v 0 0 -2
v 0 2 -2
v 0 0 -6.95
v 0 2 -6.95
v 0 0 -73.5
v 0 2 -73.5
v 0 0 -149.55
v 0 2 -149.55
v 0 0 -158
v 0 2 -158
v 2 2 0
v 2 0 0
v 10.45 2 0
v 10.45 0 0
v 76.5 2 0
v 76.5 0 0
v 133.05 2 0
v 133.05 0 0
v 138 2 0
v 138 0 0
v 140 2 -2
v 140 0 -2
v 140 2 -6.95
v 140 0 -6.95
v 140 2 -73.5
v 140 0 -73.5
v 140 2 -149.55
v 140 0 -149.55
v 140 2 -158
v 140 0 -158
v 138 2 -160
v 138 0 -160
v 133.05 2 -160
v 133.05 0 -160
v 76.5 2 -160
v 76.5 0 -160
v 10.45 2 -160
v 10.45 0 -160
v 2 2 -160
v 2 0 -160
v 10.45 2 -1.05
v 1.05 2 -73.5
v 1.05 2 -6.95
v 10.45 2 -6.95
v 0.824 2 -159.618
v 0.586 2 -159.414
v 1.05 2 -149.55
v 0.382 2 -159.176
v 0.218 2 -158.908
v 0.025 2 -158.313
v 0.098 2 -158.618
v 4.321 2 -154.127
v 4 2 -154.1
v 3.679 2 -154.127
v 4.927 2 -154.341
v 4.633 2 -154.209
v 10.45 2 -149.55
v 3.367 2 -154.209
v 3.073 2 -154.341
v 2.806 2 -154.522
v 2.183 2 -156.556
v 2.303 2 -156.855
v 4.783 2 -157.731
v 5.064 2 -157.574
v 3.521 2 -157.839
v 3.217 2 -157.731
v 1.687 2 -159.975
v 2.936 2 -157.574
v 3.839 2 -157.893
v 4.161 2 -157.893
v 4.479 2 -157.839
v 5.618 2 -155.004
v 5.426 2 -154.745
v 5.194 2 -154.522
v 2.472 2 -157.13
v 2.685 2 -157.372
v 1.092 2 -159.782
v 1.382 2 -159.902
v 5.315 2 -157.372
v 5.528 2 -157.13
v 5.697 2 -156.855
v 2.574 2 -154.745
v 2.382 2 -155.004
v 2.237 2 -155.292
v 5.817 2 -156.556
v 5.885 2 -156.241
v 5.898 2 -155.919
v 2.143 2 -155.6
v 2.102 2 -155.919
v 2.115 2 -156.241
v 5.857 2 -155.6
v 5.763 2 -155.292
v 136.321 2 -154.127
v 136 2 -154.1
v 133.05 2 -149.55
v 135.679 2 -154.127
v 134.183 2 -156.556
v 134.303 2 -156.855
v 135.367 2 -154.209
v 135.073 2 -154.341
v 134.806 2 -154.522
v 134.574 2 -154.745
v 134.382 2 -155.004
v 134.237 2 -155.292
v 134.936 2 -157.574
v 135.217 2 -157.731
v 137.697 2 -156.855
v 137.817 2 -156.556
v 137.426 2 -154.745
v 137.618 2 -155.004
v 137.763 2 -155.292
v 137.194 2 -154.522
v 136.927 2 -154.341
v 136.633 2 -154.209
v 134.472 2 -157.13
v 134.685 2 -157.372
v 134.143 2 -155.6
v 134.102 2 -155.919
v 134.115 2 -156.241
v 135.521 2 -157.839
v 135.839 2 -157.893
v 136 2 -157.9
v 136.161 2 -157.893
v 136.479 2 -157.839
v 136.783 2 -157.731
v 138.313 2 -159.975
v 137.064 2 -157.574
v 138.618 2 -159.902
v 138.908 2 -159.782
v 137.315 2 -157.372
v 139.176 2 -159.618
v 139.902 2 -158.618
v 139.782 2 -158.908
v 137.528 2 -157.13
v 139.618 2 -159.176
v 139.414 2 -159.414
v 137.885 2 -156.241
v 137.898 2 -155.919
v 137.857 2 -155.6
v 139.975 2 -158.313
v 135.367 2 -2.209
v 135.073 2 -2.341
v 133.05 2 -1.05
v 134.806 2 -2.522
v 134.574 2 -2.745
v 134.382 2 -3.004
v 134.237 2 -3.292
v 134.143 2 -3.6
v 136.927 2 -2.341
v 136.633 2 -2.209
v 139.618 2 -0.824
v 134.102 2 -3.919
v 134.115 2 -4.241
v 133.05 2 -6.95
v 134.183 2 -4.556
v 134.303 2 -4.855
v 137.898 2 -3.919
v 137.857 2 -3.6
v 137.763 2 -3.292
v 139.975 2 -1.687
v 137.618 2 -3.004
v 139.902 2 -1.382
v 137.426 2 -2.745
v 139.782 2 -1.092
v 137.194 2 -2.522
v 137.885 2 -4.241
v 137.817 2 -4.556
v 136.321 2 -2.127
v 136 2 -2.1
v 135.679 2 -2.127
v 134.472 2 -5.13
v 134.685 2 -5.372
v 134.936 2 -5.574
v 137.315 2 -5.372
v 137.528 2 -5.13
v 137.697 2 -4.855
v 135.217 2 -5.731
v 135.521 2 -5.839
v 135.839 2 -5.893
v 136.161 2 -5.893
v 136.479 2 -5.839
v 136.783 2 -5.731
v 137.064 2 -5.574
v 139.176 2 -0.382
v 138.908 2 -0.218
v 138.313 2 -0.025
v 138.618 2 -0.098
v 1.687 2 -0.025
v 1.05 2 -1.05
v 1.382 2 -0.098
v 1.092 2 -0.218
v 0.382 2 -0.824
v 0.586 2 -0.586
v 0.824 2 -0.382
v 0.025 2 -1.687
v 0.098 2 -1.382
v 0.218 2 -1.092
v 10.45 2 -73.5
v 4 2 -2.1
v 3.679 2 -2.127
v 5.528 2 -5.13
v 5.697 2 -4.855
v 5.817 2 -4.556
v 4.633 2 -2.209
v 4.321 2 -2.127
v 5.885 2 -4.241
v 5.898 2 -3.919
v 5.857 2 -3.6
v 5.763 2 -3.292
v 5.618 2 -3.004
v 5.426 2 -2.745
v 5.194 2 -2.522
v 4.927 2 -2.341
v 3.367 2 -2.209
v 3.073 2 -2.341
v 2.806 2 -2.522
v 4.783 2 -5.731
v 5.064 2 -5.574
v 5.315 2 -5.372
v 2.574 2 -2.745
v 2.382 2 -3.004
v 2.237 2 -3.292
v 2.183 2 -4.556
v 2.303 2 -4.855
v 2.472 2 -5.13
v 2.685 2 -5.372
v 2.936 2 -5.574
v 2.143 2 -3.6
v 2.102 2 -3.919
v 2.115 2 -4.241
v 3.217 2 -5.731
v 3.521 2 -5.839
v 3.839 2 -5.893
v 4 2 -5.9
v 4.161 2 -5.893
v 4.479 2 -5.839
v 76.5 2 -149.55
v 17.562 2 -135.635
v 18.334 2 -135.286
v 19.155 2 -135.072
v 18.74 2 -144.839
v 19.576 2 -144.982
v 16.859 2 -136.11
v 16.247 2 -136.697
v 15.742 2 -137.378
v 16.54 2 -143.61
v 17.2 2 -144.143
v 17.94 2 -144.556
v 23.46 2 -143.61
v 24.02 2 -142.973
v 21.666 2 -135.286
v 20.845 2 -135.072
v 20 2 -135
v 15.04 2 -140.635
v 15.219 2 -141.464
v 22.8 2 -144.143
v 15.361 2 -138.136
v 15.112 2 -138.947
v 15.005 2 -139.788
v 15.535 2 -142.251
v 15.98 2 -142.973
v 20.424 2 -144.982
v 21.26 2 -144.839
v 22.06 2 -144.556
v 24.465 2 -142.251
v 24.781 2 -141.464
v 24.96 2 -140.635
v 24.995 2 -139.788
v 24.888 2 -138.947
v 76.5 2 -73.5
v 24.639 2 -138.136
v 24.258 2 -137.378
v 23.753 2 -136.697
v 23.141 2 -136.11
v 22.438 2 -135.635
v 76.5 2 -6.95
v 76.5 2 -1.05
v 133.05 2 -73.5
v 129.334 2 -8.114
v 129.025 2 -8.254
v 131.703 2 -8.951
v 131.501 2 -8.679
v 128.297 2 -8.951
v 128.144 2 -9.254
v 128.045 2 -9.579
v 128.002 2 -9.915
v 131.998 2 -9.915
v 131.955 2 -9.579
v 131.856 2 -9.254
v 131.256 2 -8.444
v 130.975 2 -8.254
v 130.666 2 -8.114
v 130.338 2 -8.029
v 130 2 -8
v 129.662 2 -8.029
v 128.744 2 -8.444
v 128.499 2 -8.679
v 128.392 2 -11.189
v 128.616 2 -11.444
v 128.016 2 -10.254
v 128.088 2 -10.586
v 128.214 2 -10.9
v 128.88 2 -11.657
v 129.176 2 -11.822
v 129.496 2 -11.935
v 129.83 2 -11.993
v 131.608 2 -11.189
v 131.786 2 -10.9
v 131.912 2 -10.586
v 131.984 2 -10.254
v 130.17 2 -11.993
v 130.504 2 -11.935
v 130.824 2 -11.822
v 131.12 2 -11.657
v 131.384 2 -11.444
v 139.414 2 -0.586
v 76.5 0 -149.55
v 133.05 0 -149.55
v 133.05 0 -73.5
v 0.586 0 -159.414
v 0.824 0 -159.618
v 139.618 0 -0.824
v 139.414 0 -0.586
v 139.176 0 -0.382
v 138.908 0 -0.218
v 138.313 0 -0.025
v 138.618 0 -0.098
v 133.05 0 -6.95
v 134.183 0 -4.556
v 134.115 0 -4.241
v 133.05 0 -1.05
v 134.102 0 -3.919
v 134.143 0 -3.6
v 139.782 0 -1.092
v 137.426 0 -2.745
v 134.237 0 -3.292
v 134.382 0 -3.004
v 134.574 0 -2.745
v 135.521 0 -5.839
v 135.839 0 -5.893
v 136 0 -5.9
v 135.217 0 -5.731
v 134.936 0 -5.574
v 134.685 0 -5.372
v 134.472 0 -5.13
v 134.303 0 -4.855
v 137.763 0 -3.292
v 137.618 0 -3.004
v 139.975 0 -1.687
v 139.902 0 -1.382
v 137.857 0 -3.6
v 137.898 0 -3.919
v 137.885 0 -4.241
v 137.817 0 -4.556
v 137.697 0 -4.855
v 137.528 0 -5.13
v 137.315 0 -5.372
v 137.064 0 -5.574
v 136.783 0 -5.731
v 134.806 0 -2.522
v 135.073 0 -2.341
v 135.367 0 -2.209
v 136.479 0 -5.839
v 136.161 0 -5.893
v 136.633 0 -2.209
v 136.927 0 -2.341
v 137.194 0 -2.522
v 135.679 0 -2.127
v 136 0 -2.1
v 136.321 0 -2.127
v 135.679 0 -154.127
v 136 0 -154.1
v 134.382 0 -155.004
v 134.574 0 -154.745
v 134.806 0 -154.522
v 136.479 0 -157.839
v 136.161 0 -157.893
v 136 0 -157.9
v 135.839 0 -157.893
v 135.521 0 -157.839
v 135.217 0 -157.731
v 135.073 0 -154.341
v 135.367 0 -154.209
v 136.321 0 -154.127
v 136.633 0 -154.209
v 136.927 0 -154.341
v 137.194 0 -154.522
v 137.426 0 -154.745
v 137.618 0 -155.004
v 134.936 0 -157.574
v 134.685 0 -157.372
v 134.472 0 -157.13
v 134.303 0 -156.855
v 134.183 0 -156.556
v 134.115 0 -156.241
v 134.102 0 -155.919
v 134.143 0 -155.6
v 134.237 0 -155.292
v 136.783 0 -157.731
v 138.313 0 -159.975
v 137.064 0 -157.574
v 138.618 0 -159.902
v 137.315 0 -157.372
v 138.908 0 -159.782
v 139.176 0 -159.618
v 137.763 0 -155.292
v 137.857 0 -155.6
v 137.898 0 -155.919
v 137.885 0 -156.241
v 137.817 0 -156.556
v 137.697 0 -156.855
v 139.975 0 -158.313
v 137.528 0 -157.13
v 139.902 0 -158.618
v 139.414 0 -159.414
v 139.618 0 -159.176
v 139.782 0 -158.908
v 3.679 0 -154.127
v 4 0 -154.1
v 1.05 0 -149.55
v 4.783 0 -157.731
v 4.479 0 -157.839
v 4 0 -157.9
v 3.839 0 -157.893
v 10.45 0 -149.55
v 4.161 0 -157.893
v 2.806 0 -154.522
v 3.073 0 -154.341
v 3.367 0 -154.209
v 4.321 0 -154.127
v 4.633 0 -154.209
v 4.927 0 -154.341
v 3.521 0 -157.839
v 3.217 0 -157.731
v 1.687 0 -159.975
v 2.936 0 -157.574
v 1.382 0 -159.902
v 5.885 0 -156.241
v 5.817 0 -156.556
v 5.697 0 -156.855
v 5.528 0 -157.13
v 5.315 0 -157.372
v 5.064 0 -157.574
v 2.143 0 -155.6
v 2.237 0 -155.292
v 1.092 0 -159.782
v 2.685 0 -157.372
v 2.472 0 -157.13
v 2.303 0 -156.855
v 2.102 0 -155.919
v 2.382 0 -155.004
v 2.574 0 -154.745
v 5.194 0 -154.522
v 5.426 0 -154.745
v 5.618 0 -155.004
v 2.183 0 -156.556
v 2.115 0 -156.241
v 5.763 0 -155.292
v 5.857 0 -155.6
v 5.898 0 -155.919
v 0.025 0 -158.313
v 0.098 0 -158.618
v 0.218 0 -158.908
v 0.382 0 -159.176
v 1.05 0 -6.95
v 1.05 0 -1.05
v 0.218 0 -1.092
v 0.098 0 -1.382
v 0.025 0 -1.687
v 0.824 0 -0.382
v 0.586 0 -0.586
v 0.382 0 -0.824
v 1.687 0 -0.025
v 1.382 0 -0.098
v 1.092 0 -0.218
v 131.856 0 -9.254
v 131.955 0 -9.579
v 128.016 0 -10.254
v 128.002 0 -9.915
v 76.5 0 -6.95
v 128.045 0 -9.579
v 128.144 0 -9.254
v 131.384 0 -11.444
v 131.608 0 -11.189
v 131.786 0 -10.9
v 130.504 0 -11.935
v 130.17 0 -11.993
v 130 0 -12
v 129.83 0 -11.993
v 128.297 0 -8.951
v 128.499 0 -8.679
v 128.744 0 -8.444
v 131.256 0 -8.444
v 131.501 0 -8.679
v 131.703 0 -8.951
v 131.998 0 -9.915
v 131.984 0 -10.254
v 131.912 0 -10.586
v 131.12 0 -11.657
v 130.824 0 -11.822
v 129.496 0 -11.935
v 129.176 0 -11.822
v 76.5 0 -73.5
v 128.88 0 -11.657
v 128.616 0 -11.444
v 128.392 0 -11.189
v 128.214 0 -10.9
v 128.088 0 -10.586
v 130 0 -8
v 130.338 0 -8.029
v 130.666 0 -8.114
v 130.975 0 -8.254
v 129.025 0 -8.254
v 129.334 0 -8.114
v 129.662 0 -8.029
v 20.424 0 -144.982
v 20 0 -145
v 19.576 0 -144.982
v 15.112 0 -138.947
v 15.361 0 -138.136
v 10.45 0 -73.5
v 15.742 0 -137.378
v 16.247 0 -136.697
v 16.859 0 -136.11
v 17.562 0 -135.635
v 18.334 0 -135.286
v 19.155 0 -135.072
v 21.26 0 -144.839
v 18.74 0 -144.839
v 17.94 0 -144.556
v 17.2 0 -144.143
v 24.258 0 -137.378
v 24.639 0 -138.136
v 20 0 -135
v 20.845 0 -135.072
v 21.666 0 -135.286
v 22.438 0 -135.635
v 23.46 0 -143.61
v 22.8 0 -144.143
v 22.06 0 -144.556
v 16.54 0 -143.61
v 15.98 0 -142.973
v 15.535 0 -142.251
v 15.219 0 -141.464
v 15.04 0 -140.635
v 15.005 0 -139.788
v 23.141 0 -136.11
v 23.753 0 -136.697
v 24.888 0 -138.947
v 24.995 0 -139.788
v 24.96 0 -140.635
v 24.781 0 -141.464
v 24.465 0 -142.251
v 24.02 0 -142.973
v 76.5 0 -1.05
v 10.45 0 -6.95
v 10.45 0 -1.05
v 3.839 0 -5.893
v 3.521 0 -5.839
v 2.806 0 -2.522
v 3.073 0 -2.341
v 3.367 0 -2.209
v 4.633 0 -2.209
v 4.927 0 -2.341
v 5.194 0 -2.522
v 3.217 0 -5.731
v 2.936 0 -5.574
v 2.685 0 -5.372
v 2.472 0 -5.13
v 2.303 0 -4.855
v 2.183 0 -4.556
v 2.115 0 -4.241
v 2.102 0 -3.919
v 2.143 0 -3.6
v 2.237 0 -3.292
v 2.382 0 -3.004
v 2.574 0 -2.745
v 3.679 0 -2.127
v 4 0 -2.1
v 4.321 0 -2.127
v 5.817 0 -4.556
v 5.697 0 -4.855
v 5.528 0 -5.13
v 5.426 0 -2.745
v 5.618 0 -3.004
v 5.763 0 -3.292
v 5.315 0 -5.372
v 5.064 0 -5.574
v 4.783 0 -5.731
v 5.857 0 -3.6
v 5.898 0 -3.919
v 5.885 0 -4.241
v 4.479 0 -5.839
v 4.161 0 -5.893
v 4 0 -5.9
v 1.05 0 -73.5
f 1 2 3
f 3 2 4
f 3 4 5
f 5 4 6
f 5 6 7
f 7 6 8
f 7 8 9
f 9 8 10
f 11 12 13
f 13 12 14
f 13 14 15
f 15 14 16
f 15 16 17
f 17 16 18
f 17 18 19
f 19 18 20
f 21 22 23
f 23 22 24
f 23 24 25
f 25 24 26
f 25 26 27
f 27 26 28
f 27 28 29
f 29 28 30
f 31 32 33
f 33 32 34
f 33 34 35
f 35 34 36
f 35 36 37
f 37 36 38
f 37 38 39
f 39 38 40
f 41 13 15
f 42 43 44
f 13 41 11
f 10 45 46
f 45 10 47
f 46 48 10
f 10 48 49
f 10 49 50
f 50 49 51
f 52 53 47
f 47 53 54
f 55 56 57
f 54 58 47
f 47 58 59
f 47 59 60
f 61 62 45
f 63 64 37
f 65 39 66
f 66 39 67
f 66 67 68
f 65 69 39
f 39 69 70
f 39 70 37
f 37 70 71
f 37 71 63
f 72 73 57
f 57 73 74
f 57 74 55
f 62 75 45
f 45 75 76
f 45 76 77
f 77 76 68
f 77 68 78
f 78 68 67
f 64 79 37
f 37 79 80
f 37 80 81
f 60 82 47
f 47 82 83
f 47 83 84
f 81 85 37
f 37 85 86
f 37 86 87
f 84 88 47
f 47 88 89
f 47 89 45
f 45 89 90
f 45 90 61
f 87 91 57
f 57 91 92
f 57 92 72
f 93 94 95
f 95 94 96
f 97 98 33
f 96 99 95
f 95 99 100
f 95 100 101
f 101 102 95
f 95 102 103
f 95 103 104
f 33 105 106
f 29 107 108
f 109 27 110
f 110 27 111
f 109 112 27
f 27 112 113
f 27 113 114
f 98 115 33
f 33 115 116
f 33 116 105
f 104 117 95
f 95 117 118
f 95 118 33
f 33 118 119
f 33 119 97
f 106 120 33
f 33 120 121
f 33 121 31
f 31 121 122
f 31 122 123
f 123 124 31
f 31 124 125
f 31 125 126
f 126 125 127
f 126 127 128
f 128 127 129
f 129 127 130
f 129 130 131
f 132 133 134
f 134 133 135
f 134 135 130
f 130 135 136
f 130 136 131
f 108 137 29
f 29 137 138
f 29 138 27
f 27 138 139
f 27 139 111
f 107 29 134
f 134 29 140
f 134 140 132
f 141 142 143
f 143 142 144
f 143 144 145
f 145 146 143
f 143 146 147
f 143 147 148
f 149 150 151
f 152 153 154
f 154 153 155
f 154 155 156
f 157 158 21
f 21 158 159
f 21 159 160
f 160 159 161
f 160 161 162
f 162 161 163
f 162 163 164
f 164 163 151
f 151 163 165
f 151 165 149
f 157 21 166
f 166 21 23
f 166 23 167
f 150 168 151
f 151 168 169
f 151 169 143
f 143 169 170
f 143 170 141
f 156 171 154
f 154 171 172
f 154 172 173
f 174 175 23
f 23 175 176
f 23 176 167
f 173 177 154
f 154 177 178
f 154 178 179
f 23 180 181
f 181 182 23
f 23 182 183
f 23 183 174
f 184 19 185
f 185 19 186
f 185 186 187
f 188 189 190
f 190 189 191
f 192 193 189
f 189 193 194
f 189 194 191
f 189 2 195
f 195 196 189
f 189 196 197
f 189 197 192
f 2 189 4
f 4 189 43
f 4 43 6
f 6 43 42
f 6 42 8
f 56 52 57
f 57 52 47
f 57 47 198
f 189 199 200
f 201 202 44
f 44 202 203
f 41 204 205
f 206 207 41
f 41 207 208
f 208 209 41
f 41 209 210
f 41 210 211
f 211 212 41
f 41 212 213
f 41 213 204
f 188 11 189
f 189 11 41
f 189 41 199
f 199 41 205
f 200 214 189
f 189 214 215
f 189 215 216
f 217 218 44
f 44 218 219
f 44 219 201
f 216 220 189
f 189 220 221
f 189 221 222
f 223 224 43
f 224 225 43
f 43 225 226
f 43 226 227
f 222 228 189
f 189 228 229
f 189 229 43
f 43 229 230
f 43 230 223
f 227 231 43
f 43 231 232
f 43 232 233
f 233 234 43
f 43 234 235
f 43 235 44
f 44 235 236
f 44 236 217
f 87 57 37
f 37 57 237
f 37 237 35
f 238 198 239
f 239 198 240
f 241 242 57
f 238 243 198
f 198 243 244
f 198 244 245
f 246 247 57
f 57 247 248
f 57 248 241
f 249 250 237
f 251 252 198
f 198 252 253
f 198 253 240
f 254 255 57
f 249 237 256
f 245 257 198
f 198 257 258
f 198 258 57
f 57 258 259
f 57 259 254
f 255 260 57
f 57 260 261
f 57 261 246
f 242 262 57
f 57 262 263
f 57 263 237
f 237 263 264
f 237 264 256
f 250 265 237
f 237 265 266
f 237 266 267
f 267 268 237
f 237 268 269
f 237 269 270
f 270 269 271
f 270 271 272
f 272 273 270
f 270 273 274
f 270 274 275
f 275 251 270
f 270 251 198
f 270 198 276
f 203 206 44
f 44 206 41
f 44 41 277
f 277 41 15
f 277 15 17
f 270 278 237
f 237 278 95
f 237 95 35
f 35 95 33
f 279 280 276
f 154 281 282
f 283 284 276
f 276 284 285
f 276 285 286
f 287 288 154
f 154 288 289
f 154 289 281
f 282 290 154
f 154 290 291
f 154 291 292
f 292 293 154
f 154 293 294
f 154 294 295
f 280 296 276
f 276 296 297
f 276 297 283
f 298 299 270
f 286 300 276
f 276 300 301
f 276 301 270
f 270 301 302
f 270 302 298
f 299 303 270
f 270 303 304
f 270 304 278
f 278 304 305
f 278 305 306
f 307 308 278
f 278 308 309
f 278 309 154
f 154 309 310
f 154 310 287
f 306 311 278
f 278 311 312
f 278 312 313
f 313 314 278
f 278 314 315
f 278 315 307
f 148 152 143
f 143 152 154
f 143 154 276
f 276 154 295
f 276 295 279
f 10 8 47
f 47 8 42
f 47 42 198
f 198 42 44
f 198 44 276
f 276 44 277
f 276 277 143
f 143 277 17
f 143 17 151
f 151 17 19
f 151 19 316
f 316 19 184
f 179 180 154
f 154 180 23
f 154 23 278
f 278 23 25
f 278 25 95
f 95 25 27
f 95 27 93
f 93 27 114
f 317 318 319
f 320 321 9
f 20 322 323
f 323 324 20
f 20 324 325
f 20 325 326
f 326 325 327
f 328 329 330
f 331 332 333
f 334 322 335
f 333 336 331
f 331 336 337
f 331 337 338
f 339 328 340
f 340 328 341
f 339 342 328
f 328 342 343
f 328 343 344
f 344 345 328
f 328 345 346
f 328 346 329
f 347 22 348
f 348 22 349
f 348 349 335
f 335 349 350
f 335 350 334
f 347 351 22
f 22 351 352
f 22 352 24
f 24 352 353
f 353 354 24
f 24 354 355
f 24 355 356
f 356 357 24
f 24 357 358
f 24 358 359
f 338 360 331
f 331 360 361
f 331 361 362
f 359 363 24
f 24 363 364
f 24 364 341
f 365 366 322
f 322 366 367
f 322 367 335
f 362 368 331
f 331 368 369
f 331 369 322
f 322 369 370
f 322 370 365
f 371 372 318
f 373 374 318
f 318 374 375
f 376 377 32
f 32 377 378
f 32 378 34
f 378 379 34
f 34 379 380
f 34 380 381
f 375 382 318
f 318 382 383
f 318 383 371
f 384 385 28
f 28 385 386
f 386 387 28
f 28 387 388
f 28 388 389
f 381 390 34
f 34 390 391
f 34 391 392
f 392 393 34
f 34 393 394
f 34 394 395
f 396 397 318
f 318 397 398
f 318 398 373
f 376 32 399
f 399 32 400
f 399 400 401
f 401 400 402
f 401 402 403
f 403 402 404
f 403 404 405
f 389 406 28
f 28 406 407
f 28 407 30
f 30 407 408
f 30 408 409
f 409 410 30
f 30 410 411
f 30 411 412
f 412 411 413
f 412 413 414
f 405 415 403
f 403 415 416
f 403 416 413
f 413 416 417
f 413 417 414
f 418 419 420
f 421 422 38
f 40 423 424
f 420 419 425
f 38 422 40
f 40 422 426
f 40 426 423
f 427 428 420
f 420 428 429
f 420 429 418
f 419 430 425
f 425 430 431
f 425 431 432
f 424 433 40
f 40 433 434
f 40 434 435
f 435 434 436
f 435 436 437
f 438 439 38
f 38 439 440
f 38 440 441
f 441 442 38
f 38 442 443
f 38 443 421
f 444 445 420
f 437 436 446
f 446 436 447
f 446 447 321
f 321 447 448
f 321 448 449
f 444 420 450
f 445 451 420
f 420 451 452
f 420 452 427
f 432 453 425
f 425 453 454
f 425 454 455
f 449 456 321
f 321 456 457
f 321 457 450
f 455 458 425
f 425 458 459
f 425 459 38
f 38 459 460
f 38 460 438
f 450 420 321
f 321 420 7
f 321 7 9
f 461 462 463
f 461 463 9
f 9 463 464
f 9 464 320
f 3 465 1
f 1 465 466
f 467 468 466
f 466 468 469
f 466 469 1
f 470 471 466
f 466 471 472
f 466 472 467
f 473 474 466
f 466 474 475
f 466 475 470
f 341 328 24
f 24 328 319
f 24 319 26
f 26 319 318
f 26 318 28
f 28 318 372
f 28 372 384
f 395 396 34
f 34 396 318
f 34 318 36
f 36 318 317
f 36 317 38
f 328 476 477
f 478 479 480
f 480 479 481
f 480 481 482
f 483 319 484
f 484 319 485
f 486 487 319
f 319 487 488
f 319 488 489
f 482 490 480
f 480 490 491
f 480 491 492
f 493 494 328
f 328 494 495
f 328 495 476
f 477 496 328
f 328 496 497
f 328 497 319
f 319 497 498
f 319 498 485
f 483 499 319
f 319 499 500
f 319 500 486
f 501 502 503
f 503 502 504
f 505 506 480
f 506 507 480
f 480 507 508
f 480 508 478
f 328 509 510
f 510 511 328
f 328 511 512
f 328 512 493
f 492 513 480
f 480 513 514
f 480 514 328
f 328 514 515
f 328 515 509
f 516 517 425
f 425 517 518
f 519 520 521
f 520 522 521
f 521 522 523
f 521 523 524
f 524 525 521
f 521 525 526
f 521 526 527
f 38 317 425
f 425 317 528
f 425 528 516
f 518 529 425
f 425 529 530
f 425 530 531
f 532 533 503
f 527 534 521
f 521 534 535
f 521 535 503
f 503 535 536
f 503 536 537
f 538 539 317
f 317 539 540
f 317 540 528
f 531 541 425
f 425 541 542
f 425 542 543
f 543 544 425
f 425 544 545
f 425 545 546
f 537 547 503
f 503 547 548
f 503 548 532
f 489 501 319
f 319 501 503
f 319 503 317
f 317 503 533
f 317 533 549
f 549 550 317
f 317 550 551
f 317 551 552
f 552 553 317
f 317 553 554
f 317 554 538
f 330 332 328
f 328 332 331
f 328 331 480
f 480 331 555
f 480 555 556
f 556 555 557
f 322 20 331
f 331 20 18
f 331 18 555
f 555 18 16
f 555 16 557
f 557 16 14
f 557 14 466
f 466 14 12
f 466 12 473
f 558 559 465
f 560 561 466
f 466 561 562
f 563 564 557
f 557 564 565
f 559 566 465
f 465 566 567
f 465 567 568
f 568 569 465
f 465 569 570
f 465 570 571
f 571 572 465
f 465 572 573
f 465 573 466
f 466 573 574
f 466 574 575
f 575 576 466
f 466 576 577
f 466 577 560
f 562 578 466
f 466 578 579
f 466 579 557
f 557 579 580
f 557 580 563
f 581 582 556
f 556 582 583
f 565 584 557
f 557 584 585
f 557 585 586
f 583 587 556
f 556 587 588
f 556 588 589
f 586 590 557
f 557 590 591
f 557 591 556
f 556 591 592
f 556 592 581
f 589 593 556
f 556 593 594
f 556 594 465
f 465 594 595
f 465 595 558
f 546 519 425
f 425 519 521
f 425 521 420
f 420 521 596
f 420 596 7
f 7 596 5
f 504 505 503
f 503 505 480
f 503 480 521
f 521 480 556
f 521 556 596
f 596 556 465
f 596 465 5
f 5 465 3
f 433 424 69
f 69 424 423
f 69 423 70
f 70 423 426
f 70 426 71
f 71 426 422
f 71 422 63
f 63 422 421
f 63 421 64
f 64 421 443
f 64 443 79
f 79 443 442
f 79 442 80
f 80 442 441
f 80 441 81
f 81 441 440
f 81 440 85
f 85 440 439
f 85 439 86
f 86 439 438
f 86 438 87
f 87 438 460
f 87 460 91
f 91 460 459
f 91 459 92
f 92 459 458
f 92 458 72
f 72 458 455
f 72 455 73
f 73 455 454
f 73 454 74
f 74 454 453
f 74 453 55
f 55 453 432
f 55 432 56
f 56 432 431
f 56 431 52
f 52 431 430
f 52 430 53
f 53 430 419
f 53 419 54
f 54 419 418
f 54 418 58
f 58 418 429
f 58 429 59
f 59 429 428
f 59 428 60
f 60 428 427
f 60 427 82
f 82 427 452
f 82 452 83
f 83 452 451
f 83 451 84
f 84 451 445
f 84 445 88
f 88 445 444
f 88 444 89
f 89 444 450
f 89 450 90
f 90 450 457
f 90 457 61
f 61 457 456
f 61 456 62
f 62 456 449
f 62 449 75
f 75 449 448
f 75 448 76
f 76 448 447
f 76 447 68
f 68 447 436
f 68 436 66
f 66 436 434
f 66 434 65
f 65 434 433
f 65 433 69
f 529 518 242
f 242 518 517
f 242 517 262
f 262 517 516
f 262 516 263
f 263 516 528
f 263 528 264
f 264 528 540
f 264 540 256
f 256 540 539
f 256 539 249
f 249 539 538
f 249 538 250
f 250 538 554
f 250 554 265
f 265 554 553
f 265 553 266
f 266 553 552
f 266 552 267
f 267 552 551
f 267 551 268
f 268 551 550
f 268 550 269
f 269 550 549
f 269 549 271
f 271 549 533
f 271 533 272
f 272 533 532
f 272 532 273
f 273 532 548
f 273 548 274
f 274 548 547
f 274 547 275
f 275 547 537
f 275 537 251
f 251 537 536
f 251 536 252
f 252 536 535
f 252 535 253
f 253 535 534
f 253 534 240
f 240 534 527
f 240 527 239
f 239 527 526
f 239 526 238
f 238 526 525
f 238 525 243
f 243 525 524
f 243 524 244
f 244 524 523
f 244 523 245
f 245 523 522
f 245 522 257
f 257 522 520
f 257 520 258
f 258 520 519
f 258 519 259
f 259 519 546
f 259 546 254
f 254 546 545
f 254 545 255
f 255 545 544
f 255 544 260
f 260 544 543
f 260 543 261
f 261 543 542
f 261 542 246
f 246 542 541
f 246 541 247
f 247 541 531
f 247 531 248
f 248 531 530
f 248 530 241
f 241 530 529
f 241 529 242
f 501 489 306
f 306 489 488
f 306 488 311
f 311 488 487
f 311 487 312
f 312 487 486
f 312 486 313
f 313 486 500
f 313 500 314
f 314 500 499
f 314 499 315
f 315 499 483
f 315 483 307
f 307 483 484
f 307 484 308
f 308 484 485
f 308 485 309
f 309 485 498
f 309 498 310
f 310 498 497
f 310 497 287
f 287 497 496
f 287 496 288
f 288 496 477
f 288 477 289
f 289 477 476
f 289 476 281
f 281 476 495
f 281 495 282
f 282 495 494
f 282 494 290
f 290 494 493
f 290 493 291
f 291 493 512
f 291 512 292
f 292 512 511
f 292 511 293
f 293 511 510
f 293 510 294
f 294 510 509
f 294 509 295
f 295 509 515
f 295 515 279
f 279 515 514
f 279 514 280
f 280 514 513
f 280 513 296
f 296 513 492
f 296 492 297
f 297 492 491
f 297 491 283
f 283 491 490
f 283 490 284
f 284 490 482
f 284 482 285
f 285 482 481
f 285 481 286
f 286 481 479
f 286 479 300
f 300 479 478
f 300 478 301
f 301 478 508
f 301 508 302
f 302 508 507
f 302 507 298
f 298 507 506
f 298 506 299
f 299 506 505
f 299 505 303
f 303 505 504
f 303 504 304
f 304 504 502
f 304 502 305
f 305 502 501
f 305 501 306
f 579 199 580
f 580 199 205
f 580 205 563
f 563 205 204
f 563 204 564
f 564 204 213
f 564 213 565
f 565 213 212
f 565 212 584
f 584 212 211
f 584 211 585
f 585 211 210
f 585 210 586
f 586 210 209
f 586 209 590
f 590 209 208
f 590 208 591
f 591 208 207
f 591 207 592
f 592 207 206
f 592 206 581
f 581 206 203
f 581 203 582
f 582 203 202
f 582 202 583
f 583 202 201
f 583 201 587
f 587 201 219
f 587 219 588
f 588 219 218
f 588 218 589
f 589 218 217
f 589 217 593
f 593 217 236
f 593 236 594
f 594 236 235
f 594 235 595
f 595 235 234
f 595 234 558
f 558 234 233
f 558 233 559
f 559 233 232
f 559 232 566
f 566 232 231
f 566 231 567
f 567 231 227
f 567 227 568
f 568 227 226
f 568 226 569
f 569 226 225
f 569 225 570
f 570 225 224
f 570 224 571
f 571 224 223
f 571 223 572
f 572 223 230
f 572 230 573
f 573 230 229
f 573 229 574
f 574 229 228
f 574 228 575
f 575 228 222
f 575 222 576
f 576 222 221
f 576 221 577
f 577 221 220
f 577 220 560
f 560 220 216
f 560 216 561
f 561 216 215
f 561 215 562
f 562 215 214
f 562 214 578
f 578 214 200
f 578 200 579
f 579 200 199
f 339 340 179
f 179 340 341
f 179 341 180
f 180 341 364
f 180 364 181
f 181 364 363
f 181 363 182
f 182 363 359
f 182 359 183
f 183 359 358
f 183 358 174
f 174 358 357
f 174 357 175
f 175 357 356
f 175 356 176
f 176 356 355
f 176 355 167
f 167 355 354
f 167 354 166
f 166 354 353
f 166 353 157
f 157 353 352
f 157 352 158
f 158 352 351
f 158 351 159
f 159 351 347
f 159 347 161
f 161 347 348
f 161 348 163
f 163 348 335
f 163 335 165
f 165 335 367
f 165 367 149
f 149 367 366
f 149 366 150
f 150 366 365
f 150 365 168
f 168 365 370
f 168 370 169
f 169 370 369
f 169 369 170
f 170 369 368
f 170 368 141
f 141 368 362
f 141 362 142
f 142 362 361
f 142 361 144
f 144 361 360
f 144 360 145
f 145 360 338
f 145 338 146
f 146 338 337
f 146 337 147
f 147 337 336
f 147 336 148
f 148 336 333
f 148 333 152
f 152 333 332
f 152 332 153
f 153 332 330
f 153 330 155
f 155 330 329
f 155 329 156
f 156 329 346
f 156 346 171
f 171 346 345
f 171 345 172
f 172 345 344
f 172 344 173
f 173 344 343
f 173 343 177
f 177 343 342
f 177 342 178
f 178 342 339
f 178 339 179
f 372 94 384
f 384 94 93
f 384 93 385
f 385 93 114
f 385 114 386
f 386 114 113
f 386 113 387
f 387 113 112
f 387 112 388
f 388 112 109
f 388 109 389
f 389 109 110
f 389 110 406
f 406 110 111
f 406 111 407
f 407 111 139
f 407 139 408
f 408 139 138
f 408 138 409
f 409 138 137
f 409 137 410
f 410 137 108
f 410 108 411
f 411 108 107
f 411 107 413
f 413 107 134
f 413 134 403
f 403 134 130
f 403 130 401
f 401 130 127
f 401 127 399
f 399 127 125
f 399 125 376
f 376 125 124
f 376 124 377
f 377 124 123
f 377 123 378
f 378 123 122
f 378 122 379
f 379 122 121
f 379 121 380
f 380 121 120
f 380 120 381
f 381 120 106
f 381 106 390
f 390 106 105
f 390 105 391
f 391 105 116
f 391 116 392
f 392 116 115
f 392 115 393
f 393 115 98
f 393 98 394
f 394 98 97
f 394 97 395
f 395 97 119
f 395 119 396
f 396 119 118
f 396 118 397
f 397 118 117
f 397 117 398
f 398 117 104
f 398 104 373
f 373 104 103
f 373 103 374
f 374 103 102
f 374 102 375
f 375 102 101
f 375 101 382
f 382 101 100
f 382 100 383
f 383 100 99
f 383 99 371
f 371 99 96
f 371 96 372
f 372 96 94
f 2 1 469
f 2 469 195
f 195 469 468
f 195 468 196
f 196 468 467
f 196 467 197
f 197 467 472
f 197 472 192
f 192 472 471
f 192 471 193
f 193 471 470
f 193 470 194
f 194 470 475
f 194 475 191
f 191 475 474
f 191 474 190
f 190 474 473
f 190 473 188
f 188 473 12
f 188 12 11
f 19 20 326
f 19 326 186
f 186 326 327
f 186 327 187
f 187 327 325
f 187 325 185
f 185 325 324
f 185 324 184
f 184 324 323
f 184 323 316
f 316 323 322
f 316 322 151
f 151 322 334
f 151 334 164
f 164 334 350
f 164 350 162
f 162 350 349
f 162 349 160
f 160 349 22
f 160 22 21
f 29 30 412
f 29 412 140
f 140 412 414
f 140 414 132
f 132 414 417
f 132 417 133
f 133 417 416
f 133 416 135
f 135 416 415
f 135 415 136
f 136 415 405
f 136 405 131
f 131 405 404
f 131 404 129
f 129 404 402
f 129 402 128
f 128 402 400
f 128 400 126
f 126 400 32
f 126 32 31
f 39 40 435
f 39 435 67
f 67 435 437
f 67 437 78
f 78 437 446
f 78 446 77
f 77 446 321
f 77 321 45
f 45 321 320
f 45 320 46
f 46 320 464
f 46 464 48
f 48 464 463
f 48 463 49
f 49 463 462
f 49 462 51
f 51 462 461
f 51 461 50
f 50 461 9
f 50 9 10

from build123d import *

# Parameters (mm, degrees)
SKETCH1_W           = 140
SKETCH1_H           = 160
BOSS_EXTRUDE1_DEPTH = 2
SKETCH2_R           = 1.9
SKETCH2_R_2         = 2
SKETCH2_R_3         = 5
CUT_EXTRUDE1_DEPTH  = 10
FILLET1_R           = 2


with BuildPart() as part:
    # Sketch1 → Boss-Extrude1 (new body)
    with BuildSketch(Plane(origin=(0, 0, 0), x_dir=(1, 0, 0), z_dir=(0, 1, 0))):
        with Locations((70, 80)):
            Rectangle(SKETCH1_W, SKETCH1_H)
    extrude(amount=BOSS_EXTRUDE1_DEPTH)

    # Sketch2 → Cut-Extrude1 (cut)
    with BuildSketch(Plane(origin=(0, 2, 0), x_dir=(1, 0, 0), z_dir=(0, 1, 0))):
        with Locations(Location((4, 156, 0), (0, 0, 270))):
            Circle(SKETCH2_R)
        with Locations(Location((136, 156, 0), (0, 0, 90))):
            Circle(SKETCH2_R)
        with Locations(Location((136, 4, 0), (0, 0, 270))):
            Circle(SKETCH2_R)
        with Locations(Location((4, 4, 0), (0, 0, 90))):
            Circle(SKETCH2_R)
        with Locations(Location((130, 10, 0), (0, 0, 270))):
            Circle(SKETCH2_R_2)
        with Locations(Location((20, 140, 0), (0, 0, 270))):
            Circle(SKETCH2_R_3)
    extrude(amount=-CUT_EXTRUDE1_DEPTH, mode=Mode.SUBTRACT)

    # Fillet1
    fillet1_edges = [part.edges().sort_by_distance(p)[0] for p in [
        (0, 1, -160),
        (140, 1, -160),
        (140, 1, 0),
        (0, 1, 0),
    ]]
    fillet(fillet1_edges, radius=FILLET1_R)


solid = part.part
